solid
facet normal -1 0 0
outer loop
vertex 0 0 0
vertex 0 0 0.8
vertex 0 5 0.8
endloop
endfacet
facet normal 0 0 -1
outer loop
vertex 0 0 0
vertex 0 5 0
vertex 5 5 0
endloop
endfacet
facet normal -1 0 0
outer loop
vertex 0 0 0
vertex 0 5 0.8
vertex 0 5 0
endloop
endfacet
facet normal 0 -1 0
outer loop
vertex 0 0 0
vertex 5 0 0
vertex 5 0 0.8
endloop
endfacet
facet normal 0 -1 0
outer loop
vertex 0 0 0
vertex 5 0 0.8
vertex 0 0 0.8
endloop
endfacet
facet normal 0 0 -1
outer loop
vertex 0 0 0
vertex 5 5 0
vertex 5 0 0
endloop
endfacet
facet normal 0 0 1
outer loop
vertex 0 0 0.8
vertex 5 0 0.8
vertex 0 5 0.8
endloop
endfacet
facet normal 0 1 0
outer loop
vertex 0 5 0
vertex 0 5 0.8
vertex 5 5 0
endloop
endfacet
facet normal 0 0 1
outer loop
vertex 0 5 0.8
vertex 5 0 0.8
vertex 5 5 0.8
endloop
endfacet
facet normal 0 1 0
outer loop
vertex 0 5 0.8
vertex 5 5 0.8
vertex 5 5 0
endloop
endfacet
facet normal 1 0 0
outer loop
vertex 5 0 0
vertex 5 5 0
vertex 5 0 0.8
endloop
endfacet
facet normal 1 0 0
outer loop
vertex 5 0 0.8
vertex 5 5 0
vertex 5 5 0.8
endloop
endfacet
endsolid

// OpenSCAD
/* Warning, this is a very basic generator with a lot of approximation 
input data : [WQFN, 4PX, 5x5x0.8mm, 32, , A, C04-00304A]
generated by com.zoubworld.electronics.cad.model3d.Basic
Date : Sun Feb 15 10:50:48 CET 2026
*/

//body
color("black")
translate([0,0,0])
cube([5.0,5.0,0.8], center=false);
